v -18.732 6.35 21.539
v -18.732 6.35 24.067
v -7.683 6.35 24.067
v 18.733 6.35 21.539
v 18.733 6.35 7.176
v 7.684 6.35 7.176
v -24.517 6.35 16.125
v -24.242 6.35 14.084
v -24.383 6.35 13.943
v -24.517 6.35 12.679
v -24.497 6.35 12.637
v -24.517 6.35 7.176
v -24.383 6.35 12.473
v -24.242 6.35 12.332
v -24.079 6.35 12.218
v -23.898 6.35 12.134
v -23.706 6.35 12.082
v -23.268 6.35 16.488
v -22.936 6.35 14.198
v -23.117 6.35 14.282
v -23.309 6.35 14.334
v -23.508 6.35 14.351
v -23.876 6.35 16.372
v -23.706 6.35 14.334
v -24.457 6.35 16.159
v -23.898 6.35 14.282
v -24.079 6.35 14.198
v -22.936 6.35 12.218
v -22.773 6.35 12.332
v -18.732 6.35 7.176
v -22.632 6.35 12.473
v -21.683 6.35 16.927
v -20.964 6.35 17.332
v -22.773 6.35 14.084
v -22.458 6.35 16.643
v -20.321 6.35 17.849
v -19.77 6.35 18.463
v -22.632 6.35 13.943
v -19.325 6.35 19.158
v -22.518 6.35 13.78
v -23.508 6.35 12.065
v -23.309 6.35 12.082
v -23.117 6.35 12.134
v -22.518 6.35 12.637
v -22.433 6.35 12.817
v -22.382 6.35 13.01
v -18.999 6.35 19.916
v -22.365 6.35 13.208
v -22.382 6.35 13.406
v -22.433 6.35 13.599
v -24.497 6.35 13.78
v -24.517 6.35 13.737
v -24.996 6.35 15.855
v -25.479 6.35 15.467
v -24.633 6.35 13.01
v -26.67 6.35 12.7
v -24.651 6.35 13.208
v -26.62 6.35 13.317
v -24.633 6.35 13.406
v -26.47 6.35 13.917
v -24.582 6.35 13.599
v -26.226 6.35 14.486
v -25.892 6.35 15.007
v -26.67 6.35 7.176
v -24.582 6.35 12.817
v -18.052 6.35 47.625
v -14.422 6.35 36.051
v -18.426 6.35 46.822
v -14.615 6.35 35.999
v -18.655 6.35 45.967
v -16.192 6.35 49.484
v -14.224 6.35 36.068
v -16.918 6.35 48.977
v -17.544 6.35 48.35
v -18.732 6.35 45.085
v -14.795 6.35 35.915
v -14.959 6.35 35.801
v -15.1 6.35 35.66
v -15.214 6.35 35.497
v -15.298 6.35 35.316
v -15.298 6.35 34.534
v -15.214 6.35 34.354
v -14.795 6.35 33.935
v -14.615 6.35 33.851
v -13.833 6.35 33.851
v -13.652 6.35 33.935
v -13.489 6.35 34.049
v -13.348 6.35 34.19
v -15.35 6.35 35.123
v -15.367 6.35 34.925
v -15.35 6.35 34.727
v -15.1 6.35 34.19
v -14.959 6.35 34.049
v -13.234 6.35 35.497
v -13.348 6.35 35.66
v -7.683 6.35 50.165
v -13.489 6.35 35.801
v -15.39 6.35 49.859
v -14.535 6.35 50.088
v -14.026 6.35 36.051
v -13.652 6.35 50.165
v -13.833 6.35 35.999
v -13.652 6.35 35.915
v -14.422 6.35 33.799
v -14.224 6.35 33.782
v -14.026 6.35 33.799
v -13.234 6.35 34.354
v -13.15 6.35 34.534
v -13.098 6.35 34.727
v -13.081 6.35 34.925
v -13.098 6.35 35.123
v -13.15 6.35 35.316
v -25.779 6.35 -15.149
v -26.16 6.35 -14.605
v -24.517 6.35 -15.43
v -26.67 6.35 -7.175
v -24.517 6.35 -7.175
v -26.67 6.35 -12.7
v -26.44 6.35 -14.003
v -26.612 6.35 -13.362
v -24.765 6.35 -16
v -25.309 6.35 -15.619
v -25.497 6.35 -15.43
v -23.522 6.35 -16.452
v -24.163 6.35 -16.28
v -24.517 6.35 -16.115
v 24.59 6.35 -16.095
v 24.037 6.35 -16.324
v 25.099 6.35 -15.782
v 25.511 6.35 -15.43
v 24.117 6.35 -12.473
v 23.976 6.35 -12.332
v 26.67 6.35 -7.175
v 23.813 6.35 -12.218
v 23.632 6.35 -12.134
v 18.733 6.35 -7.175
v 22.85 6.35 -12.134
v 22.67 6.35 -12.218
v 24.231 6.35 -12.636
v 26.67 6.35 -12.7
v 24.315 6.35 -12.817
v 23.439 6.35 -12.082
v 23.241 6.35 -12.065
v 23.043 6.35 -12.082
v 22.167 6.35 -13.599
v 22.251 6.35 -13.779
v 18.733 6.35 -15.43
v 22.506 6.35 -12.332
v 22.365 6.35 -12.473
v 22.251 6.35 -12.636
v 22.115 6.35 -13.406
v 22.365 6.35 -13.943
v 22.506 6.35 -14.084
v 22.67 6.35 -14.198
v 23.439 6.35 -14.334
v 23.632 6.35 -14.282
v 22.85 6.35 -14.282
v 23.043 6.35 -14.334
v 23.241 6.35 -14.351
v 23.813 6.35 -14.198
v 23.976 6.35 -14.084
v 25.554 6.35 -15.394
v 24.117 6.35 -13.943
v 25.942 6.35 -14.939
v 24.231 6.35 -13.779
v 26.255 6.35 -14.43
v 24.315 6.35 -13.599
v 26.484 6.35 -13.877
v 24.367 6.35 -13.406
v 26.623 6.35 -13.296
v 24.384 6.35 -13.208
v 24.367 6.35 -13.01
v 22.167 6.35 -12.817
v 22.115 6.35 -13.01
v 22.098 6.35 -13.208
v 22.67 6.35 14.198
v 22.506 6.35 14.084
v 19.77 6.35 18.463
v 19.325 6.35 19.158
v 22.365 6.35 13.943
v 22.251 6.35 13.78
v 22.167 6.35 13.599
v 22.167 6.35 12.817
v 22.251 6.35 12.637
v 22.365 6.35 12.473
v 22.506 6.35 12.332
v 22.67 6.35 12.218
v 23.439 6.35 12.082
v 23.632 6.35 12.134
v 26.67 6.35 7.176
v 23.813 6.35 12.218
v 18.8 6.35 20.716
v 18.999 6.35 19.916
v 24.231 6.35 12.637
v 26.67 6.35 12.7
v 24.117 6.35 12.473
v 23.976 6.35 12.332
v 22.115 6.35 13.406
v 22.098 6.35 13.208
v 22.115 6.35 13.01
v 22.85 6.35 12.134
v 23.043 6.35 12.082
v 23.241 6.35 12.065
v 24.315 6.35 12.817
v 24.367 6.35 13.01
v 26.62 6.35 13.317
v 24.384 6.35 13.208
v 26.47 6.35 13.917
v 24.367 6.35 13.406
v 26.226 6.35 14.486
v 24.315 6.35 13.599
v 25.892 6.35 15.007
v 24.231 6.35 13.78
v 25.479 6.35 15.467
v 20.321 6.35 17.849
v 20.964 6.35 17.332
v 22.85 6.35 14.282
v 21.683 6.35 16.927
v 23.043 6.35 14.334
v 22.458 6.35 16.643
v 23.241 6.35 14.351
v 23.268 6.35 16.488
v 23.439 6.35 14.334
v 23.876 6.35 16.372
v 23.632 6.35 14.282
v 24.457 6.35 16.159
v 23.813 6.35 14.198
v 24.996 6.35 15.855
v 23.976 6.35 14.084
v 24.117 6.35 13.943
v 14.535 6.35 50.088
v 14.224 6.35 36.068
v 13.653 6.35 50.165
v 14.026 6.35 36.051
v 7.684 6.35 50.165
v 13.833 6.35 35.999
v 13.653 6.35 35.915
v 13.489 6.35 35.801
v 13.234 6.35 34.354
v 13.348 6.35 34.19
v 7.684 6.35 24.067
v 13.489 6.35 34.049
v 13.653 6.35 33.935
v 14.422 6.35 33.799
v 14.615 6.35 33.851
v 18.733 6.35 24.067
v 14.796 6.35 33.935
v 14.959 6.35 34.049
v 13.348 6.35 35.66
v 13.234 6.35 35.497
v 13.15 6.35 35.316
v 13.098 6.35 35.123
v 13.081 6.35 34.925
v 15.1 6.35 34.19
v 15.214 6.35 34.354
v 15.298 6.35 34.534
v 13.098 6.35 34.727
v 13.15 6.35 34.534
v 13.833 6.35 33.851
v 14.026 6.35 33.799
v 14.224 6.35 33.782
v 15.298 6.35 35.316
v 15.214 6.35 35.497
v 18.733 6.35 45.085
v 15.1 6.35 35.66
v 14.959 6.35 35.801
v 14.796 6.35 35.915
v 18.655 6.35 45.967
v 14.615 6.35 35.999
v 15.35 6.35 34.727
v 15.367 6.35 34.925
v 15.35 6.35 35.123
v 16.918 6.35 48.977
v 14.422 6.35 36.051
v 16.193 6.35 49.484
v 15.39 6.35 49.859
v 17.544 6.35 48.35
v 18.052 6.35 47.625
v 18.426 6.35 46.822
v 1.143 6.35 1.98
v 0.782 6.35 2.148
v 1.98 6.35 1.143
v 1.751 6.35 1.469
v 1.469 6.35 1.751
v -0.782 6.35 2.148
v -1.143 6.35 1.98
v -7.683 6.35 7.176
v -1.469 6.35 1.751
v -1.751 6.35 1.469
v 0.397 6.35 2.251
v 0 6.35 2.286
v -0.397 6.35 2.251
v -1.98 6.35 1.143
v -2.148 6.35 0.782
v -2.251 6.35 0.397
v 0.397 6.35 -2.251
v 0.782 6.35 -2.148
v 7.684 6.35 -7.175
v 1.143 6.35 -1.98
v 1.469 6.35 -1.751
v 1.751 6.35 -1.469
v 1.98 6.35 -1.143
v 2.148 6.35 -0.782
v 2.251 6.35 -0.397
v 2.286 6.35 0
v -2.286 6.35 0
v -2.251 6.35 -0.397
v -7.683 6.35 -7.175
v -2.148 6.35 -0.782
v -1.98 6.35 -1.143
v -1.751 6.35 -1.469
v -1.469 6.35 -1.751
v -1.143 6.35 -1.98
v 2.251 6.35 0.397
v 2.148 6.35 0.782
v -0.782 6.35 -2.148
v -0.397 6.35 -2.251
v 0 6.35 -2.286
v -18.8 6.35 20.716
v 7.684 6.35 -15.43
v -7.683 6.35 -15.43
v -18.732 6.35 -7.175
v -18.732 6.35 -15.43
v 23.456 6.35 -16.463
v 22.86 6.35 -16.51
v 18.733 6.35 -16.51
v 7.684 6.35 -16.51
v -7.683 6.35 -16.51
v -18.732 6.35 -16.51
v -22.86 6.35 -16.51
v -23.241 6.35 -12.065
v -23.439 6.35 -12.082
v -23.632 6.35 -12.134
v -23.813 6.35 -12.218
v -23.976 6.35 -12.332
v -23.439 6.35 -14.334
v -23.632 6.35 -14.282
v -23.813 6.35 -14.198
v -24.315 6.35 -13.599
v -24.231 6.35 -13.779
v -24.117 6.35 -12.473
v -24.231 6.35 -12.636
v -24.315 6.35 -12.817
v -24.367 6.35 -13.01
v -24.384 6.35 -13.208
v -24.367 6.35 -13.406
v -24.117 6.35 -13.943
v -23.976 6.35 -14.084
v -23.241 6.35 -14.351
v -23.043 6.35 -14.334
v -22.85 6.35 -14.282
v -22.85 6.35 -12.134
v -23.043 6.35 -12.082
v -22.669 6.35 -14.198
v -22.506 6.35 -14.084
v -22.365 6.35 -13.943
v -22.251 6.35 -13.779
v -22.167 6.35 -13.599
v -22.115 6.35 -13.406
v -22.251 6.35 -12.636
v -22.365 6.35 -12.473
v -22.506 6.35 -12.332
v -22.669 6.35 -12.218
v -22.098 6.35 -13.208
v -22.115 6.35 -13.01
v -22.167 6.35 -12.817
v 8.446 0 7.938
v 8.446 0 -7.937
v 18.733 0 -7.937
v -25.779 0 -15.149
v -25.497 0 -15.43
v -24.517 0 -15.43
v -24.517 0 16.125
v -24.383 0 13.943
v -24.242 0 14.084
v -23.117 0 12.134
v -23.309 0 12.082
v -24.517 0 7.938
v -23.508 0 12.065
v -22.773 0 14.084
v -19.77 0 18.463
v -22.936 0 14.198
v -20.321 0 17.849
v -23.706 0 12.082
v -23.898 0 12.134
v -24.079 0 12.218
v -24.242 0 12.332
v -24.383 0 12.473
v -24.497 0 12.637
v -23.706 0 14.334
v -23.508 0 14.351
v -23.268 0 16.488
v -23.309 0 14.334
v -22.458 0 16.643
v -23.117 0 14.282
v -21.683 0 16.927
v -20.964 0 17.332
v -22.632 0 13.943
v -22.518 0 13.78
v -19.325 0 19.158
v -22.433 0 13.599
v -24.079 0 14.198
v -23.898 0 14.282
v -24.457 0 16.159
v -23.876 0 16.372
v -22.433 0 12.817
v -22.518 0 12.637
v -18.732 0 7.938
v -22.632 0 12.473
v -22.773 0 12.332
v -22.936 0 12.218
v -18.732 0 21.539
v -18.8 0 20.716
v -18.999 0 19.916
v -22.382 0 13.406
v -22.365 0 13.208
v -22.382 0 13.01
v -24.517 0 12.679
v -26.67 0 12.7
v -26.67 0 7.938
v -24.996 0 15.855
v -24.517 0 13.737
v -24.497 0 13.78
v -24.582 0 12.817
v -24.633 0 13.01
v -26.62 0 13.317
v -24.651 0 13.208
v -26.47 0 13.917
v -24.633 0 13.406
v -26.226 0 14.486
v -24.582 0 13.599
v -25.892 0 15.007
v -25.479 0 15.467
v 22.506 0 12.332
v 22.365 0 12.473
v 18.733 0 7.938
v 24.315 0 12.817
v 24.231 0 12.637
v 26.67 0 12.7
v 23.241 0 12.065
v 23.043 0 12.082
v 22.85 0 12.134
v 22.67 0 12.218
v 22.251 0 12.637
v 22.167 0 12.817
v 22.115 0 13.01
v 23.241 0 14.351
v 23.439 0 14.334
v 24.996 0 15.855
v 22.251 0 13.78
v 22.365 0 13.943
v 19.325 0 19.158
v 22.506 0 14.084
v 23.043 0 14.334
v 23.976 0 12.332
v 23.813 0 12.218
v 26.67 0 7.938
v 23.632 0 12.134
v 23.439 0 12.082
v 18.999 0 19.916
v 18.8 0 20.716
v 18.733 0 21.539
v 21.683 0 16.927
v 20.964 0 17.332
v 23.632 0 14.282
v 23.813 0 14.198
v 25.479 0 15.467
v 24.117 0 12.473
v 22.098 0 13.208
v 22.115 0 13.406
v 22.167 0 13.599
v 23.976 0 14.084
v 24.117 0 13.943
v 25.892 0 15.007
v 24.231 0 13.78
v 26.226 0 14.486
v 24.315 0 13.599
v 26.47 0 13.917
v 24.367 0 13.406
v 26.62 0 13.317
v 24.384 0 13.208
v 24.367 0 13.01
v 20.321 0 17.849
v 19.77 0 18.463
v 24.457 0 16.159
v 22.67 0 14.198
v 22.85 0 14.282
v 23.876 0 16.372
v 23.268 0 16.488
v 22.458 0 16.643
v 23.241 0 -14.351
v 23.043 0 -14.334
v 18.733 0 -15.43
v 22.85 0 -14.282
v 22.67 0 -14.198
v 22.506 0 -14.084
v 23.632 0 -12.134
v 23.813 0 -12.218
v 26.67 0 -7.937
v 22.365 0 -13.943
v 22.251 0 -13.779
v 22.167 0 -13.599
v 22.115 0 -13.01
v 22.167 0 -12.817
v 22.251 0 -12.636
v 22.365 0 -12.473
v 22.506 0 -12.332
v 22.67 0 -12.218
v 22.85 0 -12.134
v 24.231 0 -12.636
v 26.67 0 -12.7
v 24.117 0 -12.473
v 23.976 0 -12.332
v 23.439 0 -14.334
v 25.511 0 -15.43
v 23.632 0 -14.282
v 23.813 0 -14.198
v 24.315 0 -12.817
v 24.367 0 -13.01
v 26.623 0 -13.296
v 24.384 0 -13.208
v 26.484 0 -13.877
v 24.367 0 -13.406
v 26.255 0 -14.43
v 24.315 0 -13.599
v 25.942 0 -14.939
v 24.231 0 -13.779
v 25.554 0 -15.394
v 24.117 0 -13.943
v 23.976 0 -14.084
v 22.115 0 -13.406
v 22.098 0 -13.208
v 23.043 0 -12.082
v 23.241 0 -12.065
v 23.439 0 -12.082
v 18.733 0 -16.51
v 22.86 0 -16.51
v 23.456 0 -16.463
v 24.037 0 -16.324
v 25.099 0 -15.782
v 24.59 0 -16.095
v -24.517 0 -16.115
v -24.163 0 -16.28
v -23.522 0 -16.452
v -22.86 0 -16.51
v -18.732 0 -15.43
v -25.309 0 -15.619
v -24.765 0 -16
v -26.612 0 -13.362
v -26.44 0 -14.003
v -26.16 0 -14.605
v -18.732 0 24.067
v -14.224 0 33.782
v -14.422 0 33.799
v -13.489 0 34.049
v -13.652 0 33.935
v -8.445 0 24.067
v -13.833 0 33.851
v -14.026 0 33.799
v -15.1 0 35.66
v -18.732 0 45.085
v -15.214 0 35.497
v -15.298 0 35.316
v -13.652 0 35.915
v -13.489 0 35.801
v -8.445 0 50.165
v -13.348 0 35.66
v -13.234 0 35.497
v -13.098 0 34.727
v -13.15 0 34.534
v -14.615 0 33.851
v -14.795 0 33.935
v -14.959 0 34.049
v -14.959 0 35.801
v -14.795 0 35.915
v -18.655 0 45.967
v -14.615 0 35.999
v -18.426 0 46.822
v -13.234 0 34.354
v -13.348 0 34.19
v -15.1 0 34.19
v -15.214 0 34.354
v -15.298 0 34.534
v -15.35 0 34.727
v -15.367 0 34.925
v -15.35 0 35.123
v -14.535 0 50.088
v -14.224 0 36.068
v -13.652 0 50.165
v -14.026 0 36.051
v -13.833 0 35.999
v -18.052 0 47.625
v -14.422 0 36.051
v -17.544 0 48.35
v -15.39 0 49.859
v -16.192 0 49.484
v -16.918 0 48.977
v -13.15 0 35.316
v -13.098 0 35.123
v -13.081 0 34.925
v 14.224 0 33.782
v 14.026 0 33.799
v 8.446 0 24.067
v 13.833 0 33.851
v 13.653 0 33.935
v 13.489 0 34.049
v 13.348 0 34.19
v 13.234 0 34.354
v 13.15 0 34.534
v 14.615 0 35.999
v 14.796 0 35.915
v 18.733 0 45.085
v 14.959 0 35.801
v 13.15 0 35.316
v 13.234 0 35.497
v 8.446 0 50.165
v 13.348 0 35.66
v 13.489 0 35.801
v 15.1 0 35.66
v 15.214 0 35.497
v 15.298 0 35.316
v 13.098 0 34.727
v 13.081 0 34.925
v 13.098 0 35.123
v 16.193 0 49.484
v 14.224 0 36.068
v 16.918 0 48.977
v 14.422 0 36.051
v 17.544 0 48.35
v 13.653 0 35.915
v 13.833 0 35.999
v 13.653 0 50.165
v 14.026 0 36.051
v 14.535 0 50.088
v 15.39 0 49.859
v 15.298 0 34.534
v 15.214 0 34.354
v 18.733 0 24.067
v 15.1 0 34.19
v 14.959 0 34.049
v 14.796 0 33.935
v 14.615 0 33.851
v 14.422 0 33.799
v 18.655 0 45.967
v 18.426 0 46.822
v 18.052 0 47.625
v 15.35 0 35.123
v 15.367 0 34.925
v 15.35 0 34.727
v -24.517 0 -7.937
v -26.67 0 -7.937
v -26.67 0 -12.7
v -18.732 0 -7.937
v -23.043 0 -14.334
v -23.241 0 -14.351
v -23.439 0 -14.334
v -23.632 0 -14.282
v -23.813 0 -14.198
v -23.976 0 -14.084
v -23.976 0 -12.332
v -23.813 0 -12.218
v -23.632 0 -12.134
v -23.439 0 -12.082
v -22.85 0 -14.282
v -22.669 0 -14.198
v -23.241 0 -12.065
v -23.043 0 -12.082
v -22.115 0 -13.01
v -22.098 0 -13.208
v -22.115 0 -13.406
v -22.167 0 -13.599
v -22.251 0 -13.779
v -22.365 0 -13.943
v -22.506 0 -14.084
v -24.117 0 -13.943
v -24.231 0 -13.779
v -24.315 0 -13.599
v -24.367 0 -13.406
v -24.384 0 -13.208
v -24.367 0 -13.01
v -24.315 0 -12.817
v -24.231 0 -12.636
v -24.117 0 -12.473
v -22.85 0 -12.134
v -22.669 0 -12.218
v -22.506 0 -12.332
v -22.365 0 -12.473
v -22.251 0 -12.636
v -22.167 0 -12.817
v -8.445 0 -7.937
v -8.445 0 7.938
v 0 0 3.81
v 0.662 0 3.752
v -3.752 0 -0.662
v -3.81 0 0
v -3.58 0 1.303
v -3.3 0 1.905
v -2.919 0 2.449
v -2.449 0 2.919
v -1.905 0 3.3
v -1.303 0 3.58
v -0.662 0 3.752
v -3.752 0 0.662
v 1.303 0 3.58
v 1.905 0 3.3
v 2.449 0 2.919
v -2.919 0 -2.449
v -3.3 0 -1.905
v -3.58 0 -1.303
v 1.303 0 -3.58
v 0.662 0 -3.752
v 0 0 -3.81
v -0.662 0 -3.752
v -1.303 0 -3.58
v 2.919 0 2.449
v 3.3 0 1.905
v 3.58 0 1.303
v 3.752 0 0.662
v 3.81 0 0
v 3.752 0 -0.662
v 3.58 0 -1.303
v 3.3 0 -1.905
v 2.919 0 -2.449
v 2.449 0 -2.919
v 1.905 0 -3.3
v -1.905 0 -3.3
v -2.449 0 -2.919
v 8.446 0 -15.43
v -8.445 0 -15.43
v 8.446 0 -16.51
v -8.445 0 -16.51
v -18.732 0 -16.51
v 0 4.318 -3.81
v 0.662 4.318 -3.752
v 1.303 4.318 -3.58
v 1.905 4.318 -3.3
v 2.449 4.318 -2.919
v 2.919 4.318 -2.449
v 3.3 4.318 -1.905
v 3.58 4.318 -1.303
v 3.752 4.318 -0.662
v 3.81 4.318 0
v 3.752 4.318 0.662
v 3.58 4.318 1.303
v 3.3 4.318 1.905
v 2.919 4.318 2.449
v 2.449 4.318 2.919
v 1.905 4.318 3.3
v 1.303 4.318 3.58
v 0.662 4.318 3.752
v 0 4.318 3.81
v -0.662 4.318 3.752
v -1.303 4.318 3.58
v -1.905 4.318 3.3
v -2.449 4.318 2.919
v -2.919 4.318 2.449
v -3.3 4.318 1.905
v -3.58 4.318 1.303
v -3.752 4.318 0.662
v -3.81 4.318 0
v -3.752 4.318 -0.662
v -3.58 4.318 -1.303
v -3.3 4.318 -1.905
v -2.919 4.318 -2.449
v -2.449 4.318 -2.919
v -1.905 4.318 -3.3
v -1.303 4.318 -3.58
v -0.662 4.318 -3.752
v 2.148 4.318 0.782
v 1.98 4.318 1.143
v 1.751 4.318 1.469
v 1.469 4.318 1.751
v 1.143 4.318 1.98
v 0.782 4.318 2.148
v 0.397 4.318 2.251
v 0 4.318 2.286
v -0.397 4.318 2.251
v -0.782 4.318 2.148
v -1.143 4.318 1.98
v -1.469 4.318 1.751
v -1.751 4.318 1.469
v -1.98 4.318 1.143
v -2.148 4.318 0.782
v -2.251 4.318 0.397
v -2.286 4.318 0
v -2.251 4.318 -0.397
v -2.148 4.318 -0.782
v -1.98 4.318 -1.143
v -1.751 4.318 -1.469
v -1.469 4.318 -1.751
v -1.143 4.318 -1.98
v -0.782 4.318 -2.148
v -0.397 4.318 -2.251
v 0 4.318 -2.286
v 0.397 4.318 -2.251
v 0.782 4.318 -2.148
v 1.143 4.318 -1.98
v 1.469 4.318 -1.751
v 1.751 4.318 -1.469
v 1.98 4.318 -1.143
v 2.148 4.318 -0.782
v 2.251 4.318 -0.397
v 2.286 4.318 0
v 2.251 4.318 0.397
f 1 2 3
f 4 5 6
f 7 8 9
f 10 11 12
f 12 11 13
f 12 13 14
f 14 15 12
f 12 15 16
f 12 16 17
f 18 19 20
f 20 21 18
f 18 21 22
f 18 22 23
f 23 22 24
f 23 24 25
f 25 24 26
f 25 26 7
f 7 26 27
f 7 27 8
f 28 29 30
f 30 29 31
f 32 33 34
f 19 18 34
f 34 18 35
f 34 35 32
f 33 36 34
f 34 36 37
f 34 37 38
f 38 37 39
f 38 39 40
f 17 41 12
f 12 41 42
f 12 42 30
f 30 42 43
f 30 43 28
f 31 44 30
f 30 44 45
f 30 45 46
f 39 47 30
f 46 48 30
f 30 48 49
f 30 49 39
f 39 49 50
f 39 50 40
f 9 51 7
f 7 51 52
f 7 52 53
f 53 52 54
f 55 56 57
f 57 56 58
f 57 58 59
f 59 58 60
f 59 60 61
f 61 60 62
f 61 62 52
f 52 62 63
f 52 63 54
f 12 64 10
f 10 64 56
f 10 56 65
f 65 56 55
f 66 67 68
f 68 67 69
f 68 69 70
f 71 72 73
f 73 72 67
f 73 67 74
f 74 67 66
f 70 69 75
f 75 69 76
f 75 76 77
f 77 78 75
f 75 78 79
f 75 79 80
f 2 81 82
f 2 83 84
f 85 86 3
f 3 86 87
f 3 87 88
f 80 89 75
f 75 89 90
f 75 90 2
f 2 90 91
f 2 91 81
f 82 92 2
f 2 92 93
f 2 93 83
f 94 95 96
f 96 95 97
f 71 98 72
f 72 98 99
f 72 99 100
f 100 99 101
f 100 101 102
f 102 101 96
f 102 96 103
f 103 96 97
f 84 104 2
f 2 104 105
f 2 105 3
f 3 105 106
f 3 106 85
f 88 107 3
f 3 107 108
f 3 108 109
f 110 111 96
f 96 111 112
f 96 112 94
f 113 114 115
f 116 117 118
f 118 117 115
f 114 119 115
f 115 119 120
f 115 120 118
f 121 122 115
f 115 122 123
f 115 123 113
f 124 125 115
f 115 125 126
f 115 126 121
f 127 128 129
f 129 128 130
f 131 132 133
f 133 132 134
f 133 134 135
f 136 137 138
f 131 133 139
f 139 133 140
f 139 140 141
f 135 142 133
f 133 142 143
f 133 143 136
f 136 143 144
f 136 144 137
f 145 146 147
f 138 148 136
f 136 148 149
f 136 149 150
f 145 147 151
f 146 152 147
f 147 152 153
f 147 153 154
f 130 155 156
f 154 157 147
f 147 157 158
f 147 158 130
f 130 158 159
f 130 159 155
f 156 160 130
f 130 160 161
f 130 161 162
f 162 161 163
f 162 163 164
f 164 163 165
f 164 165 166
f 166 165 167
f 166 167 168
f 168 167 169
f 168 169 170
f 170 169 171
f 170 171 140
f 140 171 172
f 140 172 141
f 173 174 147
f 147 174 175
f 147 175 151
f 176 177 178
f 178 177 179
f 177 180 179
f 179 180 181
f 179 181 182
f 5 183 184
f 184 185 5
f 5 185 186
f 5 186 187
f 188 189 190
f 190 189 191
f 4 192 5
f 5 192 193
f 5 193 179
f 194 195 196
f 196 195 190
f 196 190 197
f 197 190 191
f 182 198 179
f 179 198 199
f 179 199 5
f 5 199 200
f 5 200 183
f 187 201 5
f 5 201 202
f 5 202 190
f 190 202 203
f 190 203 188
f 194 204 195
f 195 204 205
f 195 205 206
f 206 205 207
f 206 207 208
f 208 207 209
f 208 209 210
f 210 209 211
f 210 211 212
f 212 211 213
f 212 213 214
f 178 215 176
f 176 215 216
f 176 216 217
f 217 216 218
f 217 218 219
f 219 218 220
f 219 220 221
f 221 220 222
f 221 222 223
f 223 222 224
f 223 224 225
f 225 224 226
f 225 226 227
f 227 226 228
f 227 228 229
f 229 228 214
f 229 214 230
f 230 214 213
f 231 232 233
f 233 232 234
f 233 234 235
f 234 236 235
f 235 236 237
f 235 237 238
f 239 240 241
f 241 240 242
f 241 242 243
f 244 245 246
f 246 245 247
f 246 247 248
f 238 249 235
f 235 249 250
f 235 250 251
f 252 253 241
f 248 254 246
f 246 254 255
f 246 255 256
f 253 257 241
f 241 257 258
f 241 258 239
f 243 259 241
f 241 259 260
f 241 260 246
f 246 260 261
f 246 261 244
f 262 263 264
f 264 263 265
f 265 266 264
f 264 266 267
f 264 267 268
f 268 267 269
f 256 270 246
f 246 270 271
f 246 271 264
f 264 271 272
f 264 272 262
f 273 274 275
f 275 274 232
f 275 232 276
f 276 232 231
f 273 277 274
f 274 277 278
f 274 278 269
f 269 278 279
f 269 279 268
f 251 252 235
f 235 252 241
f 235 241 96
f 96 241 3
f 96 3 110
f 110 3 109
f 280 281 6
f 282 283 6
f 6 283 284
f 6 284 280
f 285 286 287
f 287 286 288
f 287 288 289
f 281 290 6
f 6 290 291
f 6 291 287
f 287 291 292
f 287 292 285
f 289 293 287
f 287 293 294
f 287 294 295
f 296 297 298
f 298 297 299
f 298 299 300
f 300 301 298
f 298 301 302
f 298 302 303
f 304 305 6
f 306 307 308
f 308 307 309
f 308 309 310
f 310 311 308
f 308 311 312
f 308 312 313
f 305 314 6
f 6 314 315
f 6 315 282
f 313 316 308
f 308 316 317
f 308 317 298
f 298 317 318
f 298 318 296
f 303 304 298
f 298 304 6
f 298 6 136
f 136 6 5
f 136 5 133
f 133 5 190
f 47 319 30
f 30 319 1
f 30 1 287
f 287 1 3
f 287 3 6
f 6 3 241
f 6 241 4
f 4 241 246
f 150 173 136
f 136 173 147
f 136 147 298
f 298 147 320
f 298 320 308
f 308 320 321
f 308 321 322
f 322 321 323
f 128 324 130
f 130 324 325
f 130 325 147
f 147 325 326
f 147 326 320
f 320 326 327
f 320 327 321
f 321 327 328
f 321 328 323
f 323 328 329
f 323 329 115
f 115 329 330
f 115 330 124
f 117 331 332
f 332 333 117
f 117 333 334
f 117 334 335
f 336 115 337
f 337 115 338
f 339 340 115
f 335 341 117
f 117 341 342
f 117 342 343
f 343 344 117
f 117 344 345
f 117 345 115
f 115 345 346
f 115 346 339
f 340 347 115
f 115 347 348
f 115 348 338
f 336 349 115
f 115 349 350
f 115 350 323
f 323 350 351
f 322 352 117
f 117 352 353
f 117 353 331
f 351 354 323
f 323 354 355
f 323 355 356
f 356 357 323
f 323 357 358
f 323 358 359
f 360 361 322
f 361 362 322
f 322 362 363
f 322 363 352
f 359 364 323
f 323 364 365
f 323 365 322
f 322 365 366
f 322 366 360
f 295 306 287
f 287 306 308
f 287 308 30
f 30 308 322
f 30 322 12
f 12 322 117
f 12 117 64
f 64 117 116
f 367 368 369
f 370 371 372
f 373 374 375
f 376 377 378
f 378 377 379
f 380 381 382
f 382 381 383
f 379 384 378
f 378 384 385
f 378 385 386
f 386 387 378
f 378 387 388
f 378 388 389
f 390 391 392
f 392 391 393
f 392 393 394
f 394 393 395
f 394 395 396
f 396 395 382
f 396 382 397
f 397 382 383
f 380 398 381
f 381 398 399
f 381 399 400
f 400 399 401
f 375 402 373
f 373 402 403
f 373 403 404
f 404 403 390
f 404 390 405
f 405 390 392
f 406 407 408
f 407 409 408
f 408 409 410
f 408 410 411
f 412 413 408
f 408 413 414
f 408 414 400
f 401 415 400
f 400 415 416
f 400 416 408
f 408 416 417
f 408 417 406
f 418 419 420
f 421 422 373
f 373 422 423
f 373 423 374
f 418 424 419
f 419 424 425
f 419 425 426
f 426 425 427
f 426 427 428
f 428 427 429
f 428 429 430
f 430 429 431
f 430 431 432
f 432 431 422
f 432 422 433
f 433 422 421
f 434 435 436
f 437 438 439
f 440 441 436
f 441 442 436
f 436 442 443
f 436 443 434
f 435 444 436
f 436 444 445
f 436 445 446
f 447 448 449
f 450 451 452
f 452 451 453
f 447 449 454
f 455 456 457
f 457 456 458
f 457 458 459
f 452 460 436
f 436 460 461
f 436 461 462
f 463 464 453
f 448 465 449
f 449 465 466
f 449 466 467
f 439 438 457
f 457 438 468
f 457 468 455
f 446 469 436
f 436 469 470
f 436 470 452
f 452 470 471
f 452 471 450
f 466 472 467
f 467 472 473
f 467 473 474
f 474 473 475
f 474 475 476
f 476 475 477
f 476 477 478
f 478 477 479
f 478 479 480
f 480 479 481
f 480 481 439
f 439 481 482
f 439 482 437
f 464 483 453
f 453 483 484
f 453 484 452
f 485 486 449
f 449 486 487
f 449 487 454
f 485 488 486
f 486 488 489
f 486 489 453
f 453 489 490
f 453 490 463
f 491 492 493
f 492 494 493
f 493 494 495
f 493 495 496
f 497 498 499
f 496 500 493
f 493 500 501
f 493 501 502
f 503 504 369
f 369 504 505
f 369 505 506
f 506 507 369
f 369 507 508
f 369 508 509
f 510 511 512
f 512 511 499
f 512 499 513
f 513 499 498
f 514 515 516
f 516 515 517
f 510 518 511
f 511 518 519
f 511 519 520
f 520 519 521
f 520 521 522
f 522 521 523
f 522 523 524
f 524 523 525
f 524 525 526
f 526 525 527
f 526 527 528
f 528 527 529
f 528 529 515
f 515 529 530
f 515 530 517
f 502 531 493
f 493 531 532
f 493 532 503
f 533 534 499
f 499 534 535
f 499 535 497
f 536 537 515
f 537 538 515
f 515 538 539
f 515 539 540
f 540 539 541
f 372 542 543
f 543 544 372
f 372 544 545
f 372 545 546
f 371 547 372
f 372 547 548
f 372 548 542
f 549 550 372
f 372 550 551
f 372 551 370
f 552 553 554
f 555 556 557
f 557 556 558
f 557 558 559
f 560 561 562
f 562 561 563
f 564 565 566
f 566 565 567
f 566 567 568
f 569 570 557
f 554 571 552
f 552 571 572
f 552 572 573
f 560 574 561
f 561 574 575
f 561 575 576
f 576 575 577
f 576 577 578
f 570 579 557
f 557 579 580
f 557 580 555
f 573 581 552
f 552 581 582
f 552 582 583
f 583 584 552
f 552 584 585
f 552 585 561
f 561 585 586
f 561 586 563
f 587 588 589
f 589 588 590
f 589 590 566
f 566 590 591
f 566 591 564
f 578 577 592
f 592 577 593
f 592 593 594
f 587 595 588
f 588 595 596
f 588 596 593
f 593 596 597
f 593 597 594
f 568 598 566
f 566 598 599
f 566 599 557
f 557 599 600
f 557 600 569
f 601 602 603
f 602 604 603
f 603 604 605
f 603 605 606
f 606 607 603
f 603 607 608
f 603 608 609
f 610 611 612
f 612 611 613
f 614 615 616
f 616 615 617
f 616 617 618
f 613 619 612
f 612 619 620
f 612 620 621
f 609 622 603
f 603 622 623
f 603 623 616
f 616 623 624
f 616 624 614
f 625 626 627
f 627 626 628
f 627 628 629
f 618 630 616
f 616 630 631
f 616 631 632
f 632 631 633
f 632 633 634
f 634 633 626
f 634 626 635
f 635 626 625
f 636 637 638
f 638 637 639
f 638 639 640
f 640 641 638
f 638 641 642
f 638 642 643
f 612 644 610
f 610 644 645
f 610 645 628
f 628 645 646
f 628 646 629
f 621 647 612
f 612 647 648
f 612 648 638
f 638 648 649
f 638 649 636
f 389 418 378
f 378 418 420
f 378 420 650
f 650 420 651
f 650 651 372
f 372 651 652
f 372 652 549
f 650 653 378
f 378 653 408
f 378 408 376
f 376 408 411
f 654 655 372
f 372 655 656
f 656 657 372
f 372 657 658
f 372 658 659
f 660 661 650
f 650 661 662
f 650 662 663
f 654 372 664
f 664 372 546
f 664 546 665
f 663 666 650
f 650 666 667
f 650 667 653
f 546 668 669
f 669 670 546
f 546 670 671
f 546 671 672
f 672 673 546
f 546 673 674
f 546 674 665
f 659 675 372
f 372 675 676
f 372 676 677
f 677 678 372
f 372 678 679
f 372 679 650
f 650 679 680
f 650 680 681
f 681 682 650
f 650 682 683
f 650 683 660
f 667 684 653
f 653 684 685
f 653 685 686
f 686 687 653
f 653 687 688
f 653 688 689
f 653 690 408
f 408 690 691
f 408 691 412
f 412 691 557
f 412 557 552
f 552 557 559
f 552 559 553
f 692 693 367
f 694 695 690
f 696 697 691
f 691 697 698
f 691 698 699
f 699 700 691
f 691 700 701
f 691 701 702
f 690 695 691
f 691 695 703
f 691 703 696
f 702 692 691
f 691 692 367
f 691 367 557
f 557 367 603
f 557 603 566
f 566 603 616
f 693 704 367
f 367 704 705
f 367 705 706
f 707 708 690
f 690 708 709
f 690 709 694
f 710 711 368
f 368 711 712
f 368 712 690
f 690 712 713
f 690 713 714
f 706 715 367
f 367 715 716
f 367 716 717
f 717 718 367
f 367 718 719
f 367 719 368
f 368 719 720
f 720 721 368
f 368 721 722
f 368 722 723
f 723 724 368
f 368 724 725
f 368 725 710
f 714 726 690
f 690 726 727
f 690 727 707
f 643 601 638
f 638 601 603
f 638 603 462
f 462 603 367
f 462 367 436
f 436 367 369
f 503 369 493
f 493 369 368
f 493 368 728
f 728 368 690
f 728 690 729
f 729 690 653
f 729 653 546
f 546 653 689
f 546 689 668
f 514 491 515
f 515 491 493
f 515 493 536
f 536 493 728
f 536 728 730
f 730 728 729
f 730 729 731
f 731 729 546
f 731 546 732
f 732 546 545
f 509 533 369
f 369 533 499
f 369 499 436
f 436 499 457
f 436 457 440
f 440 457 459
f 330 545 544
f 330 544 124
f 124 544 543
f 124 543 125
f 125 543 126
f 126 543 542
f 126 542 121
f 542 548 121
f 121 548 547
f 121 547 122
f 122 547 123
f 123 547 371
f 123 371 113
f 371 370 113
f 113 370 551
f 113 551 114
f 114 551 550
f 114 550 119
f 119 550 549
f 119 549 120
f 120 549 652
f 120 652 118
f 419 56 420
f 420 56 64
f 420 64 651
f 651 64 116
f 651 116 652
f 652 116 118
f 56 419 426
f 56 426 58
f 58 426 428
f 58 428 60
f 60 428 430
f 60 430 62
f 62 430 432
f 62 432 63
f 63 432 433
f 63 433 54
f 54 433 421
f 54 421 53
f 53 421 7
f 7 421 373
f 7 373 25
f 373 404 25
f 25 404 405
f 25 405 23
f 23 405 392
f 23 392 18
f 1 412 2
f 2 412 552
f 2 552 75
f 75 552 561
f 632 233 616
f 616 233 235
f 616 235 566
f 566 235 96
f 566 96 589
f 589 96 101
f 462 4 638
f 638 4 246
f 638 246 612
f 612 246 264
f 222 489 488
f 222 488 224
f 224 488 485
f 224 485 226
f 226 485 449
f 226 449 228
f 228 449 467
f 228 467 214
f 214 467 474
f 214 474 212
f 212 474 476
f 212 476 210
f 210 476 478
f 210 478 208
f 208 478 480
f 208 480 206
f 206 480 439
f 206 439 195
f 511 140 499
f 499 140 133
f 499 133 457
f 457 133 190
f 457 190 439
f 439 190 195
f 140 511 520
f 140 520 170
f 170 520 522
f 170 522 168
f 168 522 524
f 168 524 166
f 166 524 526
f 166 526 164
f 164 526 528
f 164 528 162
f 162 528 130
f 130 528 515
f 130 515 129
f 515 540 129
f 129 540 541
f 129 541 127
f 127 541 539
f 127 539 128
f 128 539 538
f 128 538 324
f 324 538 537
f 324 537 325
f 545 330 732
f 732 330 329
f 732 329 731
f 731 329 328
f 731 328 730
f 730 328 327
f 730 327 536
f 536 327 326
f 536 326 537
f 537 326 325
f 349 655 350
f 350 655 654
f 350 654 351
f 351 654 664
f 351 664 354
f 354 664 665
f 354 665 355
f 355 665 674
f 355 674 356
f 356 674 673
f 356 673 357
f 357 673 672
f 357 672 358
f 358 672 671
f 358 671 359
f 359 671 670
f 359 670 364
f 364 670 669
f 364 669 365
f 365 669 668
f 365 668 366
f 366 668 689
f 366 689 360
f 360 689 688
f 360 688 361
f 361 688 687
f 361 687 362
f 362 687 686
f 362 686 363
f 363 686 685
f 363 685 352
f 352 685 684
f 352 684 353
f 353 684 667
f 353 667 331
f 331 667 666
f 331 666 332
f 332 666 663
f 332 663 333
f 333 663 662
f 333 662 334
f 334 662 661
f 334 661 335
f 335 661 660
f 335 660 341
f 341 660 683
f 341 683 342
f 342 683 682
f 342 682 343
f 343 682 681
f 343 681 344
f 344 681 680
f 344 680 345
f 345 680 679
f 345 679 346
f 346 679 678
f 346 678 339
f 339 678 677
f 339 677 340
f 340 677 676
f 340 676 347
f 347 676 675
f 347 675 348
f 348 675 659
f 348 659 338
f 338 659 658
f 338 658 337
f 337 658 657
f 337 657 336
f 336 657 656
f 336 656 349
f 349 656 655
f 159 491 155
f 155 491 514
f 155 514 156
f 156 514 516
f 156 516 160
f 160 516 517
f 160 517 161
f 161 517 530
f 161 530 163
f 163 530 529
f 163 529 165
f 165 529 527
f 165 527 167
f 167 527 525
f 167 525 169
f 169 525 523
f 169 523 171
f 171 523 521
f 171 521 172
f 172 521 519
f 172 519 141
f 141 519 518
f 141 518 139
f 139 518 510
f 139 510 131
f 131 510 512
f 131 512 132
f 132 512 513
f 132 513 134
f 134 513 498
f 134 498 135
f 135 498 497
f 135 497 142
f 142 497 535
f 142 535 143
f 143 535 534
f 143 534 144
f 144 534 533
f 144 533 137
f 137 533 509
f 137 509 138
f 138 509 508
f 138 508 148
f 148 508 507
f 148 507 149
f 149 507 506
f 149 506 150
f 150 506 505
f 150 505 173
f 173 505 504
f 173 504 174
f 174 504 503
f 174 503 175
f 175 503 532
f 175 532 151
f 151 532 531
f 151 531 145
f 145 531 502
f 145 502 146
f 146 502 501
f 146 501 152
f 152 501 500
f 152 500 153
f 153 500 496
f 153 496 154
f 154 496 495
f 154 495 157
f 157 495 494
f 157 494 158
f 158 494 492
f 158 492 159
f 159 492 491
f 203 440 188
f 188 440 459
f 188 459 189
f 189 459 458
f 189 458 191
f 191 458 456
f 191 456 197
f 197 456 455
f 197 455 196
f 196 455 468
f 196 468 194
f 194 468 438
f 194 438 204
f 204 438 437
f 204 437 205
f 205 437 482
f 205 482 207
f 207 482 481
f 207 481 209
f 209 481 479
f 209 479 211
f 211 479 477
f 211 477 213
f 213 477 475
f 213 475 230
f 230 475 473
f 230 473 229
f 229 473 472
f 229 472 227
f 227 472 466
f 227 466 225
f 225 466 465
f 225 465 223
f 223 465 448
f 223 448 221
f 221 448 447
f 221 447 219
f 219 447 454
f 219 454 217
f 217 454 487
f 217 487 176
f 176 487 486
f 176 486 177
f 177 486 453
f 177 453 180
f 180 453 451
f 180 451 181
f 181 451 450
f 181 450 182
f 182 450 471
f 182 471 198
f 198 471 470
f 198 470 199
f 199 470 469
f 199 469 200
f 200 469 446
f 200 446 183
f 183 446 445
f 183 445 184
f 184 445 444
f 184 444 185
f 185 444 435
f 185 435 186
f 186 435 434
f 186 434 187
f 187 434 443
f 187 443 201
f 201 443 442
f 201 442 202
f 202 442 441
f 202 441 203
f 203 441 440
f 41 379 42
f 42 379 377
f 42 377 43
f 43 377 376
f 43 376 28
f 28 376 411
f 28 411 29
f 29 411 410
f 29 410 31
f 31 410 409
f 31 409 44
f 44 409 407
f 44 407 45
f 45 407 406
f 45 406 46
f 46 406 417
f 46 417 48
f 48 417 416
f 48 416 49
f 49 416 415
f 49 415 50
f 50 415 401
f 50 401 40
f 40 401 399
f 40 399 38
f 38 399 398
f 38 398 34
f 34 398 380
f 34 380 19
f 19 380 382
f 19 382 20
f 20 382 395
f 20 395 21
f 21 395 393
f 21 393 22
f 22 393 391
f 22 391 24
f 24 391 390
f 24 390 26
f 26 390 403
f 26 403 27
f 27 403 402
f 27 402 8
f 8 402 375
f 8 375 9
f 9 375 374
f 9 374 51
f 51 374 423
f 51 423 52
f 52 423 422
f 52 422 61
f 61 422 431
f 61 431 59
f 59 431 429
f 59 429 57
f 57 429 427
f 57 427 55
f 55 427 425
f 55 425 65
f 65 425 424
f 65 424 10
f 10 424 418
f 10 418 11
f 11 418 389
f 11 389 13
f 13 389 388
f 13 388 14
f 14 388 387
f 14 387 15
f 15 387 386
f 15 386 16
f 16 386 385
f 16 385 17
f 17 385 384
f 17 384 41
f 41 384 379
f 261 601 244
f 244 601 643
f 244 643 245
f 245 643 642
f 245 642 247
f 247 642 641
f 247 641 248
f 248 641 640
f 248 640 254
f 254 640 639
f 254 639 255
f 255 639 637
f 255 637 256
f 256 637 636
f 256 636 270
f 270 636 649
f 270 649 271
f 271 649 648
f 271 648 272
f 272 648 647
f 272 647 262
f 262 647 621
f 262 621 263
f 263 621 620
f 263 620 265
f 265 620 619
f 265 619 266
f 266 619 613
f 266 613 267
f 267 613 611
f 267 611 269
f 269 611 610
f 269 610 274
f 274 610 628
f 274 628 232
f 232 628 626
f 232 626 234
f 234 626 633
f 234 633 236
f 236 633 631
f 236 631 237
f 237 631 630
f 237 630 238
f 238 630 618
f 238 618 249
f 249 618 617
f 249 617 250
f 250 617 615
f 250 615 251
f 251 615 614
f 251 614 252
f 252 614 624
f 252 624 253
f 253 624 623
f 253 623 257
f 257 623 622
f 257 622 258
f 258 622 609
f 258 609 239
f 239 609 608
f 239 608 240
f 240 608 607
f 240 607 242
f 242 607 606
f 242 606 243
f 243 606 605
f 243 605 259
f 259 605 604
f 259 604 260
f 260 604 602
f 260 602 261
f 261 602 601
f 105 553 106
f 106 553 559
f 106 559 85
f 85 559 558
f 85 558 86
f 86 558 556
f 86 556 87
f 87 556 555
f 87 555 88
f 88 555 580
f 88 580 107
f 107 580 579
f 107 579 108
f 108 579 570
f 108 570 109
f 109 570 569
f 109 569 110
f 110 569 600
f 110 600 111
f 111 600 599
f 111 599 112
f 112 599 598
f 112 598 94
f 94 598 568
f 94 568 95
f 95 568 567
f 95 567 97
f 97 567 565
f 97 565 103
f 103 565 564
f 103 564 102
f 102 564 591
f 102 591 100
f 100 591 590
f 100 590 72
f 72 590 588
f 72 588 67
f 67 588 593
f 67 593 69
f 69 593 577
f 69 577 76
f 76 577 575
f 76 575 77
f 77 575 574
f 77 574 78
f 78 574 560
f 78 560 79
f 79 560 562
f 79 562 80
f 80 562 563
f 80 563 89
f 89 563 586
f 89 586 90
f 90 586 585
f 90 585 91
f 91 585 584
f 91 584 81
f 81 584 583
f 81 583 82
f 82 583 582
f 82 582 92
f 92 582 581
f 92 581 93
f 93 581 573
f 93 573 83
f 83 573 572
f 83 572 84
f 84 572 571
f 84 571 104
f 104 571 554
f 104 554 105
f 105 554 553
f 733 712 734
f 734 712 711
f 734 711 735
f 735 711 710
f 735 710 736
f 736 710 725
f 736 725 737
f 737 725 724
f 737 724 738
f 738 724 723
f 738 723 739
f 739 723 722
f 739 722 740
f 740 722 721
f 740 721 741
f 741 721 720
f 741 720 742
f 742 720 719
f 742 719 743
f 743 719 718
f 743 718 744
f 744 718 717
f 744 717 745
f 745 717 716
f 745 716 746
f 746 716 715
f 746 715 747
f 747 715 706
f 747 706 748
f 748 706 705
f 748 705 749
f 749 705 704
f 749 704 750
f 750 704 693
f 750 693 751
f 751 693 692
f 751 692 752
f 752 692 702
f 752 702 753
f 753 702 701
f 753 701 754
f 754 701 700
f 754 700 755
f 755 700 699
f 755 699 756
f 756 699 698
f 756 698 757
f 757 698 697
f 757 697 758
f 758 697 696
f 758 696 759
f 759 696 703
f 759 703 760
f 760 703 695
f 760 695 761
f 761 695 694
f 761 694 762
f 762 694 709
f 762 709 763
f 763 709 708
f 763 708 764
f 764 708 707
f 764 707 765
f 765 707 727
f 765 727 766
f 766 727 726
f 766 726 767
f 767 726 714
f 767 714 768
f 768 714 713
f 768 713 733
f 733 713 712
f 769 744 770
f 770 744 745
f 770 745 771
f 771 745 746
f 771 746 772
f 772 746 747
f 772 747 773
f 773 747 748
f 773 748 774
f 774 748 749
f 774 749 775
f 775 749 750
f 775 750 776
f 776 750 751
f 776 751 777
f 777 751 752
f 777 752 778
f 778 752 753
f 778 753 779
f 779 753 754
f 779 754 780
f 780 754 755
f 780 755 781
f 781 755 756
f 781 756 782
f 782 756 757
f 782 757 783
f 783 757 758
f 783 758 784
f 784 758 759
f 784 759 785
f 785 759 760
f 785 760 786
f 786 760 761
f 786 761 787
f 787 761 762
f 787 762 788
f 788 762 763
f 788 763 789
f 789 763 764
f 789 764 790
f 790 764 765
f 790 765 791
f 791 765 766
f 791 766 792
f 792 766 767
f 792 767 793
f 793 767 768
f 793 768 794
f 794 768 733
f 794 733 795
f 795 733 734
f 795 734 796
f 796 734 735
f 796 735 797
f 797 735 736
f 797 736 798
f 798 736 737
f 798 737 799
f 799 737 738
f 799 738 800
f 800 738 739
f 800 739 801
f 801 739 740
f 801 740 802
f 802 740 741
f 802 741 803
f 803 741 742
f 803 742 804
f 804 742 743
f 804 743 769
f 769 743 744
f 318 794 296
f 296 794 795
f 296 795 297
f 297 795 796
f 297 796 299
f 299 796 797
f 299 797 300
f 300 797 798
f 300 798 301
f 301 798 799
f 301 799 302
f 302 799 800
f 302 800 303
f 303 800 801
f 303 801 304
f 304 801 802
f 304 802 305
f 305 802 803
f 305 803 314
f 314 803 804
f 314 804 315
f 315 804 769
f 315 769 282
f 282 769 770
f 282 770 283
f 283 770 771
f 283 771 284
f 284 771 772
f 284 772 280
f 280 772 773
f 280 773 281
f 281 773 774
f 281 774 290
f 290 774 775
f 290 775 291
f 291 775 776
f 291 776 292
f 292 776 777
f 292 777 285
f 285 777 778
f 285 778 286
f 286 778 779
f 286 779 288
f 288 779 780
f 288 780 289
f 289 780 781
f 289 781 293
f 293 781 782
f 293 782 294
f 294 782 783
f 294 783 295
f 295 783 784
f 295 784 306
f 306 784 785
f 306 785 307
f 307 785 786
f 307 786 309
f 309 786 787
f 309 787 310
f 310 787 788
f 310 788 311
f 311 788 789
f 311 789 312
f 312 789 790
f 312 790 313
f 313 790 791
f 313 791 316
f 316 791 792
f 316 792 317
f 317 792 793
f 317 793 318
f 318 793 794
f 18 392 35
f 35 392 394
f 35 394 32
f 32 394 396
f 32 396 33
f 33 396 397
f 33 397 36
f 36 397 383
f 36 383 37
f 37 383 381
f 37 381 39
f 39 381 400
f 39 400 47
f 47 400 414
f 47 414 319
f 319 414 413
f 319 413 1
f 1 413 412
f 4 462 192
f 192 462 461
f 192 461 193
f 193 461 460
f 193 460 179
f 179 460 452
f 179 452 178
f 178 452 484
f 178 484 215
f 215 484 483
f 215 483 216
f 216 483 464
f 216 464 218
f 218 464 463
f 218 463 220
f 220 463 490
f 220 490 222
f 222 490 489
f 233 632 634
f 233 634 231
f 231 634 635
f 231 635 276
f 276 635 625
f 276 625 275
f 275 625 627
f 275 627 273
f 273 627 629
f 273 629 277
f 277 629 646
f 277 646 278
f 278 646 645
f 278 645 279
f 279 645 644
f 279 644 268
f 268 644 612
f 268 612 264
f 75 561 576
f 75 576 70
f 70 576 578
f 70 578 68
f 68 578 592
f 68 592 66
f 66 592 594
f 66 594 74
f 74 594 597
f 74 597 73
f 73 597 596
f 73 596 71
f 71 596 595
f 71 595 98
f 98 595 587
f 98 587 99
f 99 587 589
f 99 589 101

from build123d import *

# Parameters (mm, degrees)
SKETCH1_R           = 1.143
BOSS_EXTRUDE1_DEPTH = 6.35
SKETCH2_R           = 3.81
CUT_EXTRUDE1_DEPTH  = 4.318
SKETCH3_R           = 2.286
CUT_EXTRUDE2_DEPTH  = 4.318
FILLET1_R           = 5.08


with BuildPart() as part:
    # Sketch1 → Boss-Extrude1 (new body)
    with BuildSketch(Plane(origin=(0, 0, 0), x_dir=(1, 0, 0), z_dir=(0, 1, 0))):
        with BuildLine():
            Line((-22.86, 16.51), (22.86, 16.51))
            ThreePointArc((22.86, 16.51), (25.554076836, 15.394076836), (26.67, 12.7))
            Line((26.67, 12.7), (26.67, -12.7))
            ThreePointArc((26.67, -12.7), (25.554076836, -15.394076836), (22.86, -16.51))
            Line((22.86, -16.51), (18.7325, -16.51))
            Line((18.7325, -16.51), (18.7325, -50.165))
            Line((18.7325, -50.165), (-18.7325, -50.165))
            Line((-18.7325, -50.165), (-18.7325, -16.51))
            Line((-18.7325, -16.51), (-22.86, -16.51))
            ThreePointArc((-22.86, -16.51), (-25.554076836, -15.394076836), (-26.67, -12.7))
            Line((-26.67, -12.7), (-26.67, 12.7))
            ThreePointArc((-26.67, 12.7), (-25.554076836, 15.394076836), (-22.86, 16.51))
        make_face()
        with Locations((-23.241, 13.208)):
            Circle(SKETCH1_R, mode=Mode.SUBTRACT)
        with Locations((23.241, 13.208)):
            Circle(SKETCH1_R, mode=Mode.SUBTRACT)
        with Locations((23.241, -13.208)):
            Circle(SKETCH1_R, mode=Mode.SUBTRACT)
        with Locations((-23.50753981, -13.208)):
            Circle(SKETCH1_R, mode=Mode.SUBTRACT)
        with Locations((14.224, -34.925)):
            Circle(SKETCH1_R, mode=Mode.SUBTRACT)
        with Locations((-14.224, -34.925)):
            Circle(SKETCH1_R, mode=Mode.SUBTRACT)
    extrude(amount=BOSS_EXTRUDE1_DEPTH)

    # Sketch2 → Cut-Extrude1 (cut)
    with BuildSketch(Plane.XZ):
        Circle(SKETCH2_R)
    extrude(amount=-CUT_EXTRUDE1_DEPTH, mode=Mode.SUBTRACT)

    # Sketch3 → Cut-Extrude2 (cut)
    with BuildSketch(Plane(origin=(0, 4.318, 0), x_dir=(-1, 0, 0), z_dir=(0, -1, 0))):
        Circle(SKETCH3_R)
    extrude(amount=-CUT_EXTRUDE2_DEPTH, mode=Mode.SUBTRACT)

    # Fillet1
    fillet1_edges = [part.edges().sort_by_distance(p)[0] for p in [
        (-18.7325, 3.175, 16.51),
        (18.7325, 3.175, 16.51),
        (18.7325, 3.175, 50.165),
        (-18.7325, 3.175, 50.165),
    ]]
    fillet(fillet1_edges, radius=FILLET1_R)


solid = part.part
